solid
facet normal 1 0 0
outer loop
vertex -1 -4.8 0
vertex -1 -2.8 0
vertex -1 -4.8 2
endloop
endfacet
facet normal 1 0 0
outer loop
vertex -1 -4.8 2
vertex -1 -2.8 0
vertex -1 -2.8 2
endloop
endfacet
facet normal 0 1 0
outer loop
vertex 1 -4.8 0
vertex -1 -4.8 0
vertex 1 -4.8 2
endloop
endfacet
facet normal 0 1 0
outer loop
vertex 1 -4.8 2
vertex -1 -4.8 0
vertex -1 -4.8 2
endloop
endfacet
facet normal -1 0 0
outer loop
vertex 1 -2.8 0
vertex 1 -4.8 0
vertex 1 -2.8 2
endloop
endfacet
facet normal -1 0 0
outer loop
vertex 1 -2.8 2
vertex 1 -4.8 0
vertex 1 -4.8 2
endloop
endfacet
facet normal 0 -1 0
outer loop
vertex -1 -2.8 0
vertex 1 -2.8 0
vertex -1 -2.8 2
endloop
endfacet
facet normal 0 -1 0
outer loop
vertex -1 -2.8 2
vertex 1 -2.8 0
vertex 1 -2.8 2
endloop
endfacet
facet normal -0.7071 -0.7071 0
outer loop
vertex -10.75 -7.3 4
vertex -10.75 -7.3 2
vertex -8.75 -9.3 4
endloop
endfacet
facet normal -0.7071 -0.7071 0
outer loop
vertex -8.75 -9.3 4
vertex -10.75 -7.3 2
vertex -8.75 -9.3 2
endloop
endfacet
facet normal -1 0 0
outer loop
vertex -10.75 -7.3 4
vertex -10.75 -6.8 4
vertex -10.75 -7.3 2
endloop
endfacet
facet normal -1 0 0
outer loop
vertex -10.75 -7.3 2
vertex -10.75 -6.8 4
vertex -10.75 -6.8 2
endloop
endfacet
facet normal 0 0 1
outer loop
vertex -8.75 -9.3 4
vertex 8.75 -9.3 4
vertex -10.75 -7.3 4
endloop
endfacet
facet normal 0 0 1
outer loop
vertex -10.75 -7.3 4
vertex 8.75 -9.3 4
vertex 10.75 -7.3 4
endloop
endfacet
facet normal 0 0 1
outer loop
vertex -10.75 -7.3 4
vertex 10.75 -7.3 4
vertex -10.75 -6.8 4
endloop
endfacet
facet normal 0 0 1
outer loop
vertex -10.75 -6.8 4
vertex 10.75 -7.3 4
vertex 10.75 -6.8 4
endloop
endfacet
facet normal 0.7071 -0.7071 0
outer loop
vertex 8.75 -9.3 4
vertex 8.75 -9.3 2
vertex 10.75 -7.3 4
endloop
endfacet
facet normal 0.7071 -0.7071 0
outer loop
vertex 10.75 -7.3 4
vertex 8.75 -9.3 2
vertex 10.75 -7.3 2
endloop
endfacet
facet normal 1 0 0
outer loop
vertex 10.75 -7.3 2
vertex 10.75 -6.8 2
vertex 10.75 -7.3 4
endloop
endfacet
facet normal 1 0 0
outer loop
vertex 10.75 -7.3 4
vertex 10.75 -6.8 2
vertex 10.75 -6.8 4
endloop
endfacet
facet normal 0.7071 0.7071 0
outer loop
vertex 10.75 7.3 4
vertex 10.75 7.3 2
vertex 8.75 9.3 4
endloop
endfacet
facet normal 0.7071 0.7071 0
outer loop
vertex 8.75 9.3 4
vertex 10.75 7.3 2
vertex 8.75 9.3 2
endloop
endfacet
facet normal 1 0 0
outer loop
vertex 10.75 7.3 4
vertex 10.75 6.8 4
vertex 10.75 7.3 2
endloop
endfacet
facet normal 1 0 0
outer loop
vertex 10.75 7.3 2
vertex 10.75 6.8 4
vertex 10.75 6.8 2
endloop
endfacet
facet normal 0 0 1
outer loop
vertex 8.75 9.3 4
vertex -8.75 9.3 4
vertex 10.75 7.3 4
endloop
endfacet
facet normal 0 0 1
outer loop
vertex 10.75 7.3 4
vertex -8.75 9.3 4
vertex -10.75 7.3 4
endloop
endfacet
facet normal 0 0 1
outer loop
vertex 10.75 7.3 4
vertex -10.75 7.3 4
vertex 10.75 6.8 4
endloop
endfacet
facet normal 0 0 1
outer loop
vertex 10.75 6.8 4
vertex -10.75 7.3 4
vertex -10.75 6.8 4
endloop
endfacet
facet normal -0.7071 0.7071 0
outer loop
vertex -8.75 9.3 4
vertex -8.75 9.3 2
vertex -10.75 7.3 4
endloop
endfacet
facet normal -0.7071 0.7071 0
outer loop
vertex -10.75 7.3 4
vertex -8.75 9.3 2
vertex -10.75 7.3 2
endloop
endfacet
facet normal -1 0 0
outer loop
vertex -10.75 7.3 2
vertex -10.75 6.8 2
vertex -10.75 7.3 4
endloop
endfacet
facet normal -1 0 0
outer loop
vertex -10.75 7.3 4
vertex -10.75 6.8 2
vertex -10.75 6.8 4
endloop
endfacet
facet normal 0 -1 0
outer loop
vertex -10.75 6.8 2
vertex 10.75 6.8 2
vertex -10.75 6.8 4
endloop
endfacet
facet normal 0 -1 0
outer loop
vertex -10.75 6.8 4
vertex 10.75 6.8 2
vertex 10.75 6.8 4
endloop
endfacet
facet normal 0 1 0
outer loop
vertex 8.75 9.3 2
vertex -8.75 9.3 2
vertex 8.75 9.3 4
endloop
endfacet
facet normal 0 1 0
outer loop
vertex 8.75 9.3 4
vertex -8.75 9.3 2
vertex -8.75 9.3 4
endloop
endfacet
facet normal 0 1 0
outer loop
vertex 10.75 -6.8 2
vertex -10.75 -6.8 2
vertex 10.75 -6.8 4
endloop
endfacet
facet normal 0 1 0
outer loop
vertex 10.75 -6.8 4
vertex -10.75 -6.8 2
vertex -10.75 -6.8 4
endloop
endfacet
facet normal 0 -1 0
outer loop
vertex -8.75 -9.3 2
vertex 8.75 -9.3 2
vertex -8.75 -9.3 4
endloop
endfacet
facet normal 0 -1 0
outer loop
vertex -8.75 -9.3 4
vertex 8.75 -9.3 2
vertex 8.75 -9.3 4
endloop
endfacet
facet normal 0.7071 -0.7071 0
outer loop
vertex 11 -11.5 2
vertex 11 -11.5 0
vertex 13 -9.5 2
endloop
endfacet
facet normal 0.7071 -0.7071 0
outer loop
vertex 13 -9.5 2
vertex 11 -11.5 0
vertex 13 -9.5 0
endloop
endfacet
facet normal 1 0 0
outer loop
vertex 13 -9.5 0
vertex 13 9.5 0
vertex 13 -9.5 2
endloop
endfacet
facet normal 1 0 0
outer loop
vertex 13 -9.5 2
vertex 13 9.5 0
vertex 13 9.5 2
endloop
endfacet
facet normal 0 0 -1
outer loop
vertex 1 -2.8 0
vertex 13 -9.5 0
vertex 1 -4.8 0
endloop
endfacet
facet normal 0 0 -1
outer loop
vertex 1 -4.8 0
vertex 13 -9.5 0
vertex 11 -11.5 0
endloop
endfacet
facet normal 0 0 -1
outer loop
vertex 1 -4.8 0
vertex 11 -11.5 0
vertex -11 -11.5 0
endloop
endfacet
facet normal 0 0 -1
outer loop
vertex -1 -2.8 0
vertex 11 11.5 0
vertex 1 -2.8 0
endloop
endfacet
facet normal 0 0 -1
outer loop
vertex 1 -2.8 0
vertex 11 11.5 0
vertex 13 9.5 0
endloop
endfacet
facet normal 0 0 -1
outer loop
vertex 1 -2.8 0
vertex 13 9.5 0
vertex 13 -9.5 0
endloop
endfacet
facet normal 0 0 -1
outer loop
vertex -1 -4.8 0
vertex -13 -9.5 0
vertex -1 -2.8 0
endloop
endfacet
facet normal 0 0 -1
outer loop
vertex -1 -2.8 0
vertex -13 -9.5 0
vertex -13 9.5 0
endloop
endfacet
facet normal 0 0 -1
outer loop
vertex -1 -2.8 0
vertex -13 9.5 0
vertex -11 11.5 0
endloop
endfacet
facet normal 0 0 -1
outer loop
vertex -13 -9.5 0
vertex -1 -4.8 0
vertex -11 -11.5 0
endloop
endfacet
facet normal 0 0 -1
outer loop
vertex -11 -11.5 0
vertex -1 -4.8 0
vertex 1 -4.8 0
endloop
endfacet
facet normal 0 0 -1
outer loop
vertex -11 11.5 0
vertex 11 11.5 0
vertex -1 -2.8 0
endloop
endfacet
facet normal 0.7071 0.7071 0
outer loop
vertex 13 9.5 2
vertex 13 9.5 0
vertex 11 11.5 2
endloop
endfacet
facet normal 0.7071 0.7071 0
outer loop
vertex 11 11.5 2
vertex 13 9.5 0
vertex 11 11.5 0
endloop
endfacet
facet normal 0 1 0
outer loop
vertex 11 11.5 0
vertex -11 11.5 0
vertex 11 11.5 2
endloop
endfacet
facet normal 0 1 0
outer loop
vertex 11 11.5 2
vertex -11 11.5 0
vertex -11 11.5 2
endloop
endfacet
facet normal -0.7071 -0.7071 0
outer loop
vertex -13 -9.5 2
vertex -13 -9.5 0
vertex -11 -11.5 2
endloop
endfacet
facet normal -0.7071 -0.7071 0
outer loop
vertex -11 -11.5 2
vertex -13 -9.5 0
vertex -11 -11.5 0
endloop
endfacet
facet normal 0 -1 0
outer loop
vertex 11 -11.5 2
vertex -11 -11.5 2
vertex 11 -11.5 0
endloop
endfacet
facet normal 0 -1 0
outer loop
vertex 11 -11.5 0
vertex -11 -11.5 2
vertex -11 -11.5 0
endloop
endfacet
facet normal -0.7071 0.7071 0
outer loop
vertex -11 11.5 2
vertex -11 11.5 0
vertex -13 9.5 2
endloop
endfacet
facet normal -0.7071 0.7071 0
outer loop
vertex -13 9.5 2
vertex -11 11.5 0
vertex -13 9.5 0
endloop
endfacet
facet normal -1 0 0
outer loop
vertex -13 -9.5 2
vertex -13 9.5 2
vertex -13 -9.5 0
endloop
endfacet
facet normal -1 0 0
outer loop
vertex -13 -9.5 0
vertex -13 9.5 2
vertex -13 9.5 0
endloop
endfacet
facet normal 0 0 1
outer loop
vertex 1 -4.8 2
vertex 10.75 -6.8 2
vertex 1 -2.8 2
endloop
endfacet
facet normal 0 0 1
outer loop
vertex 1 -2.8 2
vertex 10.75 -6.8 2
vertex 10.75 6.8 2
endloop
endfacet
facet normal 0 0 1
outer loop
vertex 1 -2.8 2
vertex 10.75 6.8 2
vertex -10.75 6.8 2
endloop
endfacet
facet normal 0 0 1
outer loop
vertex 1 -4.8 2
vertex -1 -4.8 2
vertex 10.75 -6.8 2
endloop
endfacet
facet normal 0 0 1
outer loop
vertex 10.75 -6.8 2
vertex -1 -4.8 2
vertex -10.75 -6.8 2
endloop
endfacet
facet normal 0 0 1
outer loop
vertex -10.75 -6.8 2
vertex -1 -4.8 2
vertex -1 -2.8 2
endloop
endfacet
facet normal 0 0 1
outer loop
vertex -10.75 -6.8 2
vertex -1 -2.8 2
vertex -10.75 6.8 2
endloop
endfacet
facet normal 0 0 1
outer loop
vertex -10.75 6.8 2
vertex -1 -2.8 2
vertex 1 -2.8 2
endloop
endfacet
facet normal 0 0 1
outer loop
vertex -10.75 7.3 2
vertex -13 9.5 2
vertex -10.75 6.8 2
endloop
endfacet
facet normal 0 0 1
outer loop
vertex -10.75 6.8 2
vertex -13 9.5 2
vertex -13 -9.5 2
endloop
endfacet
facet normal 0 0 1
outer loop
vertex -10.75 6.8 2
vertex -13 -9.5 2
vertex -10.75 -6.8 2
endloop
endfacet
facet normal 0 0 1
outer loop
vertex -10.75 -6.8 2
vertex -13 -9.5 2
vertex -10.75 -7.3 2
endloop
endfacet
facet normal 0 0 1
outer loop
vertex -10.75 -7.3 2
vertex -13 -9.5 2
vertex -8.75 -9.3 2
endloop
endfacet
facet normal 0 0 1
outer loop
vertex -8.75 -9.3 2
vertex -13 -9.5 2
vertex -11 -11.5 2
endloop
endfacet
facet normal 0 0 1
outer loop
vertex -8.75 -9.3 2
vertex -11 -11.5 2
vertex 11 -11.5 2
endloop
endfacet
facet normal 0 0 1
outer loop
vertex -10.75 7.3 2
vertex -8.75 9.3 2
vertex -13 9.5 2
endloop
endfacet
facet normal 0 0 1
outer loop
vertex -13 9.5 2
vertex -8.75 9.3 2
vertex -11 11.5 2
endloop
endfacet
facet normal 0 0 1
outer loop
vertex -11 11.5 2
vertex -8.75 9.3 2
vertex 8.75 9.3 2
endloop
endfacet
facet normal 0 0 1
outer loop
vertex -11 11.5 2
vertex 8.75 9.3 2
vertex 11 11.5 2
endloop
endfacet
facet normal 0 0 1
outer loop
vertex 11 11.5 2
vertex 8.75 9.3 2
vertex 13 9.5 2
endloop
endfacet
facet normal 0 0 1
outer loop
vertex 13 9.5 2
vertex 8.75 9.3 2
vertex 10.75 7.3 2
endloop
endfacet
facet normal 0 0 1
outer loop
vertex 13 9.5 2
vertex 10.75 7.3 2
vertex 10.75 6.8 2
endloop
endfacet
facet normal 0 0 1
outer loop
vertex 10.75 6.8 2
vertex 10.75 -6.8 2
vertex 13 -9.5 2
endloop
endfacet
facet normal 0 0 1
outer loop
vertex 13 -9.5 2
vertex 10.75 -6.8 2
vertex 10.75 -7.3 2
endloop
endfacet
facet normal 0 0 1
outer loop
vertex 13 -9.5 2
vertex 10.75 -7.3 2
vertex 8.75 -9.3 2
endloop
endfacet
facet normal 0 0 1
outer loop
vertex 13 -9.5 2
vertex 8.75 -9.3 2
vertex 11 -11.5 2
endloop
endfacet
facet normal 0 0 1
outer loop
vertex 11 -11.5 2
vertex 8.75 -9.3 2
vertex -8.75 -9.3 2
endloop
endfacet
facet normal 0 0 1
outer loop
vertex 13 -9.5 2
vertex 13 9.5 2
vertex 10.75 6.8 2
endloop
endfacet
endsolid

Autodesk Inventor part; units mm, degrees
ref_plane "YZ Plane" through (0, 0, 0) normal (1, 0, 0) x (0, 1, 0)
ref_plane "XZ Plane" through (0, 0, 0) normal (0, 1, 0) x (-1, 0, 0)
ref_plane "XY Plane" through (0, 0, 0) normal (0, 0, 1) x (1, 0, 0)
sketch "Esboço1" plane through (0, 0, 0) normal (0, 0, 1) x (1, 0, 0)
  line L0 (-13, 11.5) -> (13, 11.5)
  line L1 (13, 11.5) -> (13, -11.5)
  line L2 (13, -11.5) -> (-13, -11.5)
  line L3 (-13, -11.5) -> (-13, 11.5)
  line L4 (-13, 11.5) -> (13, -11.5) construction
  line L5 (13, 11.5) -> (-13, -11.5) construction
  point P0 (0, 0)
  dimension "d0" = 26
  dimension "d1" = 23
extrude "Extrusão1" add sketch "Esboço1" along normal blind 2
chamfer "Chanfro1" distance 2 angle 45 4 edges at (-13, 11.5, 1) (-13, -11.5, 1) (13, 11.5, 1) (13, -11.5, 1)
sketch "Esboço2" plane through (0, 0, 2) normal (0, 0, 1) x (1, 0, 0)
  line L0 (-10.75, 6.8) -> (10.75, 6.8)
  line L1 (10.75, 6.8) -> (10.75, 9.3)
  line L2 (10.75, 9.3) -> (-10.75, 9.3)
  line L3 (-10.75, 9.3) -> (-10.75, 6.8)
  line L4 (-10.75, 6.8) -> (10.75, 9.3) construction
  line L5 (10.75, 6.8) -> (-10.75, 9.3) construction
  line L6 (11, 11.5) -> (-11, 11.5) projected
  line L7 (-13, 9.5) -> (-13, -9.5) projected
  line L8 (0, 0) -> (3.5372, 0) construction
  line L9 (-10.75, -6.8) -> (10.75, -6.8)
  line L10 (10.75, -6.8) -> (10.75, -9.3)
  line L11 (10.75, -9.3) -> (-10.75, -9.3)
  line L12 (-10.75, -9.3) -> (-10.75, -6.8)
  line L13 (-10.75, -6.8) -> (10.75, -9.3) construction
  line L14 (10.75, -6.8) -> (-10.75, -9.3) construction
  point P0 (0, 8.05)
  point P1 (0, -8.05)
  dimension "d7" = 21.5
  dimension "d8" = 2.5
  dimension "d9" = 2.2
  dimension "d10" = 2.25
extrude "Extrusão2" add sketch "Esboço2" along normal blind 2
chamfer "Chanfro2" distance 2 angle 45 4 edges at (-10.75, 9.3, 3) (10.75, 9.3, 3) (10.75, -9.3, 3) (-10.75, -9.3, 3)
sketch "Esboço3" plane through (0, 0, 2) normal (0, 0, 1) x (1, 0, 0)
  line L0 (-1, -2.8) -> (1, -2.8)
  line L1 (1, -2.8) -> (1, -4.8)
  line L2 (1, -4.8) -> (-1, -4.8)
  line L3 (-1, -4.8) -> (-1, -2.8)
  line L4 (-1, -2.8) -> (1, -4.8) construction
  line L5 (1, -2.8) -> (-1, -4.8) construction
  line L6 (-10.75, -6.8) -> (10.75, -6.8) projected
  line L7 (13, -9.5) -> (13, 9.5) projected
  point P0 (0, 0)
  point P1 (0, -3.8)
  dimension "d16" = 2
  dimension "d17" = 2
  dimension "d18" = 2
  dimension "d19" = 12
extrude "Extrusão3" cut sketch "Esboço3" against normal blind 10
properties part number "TampaEletronica"
